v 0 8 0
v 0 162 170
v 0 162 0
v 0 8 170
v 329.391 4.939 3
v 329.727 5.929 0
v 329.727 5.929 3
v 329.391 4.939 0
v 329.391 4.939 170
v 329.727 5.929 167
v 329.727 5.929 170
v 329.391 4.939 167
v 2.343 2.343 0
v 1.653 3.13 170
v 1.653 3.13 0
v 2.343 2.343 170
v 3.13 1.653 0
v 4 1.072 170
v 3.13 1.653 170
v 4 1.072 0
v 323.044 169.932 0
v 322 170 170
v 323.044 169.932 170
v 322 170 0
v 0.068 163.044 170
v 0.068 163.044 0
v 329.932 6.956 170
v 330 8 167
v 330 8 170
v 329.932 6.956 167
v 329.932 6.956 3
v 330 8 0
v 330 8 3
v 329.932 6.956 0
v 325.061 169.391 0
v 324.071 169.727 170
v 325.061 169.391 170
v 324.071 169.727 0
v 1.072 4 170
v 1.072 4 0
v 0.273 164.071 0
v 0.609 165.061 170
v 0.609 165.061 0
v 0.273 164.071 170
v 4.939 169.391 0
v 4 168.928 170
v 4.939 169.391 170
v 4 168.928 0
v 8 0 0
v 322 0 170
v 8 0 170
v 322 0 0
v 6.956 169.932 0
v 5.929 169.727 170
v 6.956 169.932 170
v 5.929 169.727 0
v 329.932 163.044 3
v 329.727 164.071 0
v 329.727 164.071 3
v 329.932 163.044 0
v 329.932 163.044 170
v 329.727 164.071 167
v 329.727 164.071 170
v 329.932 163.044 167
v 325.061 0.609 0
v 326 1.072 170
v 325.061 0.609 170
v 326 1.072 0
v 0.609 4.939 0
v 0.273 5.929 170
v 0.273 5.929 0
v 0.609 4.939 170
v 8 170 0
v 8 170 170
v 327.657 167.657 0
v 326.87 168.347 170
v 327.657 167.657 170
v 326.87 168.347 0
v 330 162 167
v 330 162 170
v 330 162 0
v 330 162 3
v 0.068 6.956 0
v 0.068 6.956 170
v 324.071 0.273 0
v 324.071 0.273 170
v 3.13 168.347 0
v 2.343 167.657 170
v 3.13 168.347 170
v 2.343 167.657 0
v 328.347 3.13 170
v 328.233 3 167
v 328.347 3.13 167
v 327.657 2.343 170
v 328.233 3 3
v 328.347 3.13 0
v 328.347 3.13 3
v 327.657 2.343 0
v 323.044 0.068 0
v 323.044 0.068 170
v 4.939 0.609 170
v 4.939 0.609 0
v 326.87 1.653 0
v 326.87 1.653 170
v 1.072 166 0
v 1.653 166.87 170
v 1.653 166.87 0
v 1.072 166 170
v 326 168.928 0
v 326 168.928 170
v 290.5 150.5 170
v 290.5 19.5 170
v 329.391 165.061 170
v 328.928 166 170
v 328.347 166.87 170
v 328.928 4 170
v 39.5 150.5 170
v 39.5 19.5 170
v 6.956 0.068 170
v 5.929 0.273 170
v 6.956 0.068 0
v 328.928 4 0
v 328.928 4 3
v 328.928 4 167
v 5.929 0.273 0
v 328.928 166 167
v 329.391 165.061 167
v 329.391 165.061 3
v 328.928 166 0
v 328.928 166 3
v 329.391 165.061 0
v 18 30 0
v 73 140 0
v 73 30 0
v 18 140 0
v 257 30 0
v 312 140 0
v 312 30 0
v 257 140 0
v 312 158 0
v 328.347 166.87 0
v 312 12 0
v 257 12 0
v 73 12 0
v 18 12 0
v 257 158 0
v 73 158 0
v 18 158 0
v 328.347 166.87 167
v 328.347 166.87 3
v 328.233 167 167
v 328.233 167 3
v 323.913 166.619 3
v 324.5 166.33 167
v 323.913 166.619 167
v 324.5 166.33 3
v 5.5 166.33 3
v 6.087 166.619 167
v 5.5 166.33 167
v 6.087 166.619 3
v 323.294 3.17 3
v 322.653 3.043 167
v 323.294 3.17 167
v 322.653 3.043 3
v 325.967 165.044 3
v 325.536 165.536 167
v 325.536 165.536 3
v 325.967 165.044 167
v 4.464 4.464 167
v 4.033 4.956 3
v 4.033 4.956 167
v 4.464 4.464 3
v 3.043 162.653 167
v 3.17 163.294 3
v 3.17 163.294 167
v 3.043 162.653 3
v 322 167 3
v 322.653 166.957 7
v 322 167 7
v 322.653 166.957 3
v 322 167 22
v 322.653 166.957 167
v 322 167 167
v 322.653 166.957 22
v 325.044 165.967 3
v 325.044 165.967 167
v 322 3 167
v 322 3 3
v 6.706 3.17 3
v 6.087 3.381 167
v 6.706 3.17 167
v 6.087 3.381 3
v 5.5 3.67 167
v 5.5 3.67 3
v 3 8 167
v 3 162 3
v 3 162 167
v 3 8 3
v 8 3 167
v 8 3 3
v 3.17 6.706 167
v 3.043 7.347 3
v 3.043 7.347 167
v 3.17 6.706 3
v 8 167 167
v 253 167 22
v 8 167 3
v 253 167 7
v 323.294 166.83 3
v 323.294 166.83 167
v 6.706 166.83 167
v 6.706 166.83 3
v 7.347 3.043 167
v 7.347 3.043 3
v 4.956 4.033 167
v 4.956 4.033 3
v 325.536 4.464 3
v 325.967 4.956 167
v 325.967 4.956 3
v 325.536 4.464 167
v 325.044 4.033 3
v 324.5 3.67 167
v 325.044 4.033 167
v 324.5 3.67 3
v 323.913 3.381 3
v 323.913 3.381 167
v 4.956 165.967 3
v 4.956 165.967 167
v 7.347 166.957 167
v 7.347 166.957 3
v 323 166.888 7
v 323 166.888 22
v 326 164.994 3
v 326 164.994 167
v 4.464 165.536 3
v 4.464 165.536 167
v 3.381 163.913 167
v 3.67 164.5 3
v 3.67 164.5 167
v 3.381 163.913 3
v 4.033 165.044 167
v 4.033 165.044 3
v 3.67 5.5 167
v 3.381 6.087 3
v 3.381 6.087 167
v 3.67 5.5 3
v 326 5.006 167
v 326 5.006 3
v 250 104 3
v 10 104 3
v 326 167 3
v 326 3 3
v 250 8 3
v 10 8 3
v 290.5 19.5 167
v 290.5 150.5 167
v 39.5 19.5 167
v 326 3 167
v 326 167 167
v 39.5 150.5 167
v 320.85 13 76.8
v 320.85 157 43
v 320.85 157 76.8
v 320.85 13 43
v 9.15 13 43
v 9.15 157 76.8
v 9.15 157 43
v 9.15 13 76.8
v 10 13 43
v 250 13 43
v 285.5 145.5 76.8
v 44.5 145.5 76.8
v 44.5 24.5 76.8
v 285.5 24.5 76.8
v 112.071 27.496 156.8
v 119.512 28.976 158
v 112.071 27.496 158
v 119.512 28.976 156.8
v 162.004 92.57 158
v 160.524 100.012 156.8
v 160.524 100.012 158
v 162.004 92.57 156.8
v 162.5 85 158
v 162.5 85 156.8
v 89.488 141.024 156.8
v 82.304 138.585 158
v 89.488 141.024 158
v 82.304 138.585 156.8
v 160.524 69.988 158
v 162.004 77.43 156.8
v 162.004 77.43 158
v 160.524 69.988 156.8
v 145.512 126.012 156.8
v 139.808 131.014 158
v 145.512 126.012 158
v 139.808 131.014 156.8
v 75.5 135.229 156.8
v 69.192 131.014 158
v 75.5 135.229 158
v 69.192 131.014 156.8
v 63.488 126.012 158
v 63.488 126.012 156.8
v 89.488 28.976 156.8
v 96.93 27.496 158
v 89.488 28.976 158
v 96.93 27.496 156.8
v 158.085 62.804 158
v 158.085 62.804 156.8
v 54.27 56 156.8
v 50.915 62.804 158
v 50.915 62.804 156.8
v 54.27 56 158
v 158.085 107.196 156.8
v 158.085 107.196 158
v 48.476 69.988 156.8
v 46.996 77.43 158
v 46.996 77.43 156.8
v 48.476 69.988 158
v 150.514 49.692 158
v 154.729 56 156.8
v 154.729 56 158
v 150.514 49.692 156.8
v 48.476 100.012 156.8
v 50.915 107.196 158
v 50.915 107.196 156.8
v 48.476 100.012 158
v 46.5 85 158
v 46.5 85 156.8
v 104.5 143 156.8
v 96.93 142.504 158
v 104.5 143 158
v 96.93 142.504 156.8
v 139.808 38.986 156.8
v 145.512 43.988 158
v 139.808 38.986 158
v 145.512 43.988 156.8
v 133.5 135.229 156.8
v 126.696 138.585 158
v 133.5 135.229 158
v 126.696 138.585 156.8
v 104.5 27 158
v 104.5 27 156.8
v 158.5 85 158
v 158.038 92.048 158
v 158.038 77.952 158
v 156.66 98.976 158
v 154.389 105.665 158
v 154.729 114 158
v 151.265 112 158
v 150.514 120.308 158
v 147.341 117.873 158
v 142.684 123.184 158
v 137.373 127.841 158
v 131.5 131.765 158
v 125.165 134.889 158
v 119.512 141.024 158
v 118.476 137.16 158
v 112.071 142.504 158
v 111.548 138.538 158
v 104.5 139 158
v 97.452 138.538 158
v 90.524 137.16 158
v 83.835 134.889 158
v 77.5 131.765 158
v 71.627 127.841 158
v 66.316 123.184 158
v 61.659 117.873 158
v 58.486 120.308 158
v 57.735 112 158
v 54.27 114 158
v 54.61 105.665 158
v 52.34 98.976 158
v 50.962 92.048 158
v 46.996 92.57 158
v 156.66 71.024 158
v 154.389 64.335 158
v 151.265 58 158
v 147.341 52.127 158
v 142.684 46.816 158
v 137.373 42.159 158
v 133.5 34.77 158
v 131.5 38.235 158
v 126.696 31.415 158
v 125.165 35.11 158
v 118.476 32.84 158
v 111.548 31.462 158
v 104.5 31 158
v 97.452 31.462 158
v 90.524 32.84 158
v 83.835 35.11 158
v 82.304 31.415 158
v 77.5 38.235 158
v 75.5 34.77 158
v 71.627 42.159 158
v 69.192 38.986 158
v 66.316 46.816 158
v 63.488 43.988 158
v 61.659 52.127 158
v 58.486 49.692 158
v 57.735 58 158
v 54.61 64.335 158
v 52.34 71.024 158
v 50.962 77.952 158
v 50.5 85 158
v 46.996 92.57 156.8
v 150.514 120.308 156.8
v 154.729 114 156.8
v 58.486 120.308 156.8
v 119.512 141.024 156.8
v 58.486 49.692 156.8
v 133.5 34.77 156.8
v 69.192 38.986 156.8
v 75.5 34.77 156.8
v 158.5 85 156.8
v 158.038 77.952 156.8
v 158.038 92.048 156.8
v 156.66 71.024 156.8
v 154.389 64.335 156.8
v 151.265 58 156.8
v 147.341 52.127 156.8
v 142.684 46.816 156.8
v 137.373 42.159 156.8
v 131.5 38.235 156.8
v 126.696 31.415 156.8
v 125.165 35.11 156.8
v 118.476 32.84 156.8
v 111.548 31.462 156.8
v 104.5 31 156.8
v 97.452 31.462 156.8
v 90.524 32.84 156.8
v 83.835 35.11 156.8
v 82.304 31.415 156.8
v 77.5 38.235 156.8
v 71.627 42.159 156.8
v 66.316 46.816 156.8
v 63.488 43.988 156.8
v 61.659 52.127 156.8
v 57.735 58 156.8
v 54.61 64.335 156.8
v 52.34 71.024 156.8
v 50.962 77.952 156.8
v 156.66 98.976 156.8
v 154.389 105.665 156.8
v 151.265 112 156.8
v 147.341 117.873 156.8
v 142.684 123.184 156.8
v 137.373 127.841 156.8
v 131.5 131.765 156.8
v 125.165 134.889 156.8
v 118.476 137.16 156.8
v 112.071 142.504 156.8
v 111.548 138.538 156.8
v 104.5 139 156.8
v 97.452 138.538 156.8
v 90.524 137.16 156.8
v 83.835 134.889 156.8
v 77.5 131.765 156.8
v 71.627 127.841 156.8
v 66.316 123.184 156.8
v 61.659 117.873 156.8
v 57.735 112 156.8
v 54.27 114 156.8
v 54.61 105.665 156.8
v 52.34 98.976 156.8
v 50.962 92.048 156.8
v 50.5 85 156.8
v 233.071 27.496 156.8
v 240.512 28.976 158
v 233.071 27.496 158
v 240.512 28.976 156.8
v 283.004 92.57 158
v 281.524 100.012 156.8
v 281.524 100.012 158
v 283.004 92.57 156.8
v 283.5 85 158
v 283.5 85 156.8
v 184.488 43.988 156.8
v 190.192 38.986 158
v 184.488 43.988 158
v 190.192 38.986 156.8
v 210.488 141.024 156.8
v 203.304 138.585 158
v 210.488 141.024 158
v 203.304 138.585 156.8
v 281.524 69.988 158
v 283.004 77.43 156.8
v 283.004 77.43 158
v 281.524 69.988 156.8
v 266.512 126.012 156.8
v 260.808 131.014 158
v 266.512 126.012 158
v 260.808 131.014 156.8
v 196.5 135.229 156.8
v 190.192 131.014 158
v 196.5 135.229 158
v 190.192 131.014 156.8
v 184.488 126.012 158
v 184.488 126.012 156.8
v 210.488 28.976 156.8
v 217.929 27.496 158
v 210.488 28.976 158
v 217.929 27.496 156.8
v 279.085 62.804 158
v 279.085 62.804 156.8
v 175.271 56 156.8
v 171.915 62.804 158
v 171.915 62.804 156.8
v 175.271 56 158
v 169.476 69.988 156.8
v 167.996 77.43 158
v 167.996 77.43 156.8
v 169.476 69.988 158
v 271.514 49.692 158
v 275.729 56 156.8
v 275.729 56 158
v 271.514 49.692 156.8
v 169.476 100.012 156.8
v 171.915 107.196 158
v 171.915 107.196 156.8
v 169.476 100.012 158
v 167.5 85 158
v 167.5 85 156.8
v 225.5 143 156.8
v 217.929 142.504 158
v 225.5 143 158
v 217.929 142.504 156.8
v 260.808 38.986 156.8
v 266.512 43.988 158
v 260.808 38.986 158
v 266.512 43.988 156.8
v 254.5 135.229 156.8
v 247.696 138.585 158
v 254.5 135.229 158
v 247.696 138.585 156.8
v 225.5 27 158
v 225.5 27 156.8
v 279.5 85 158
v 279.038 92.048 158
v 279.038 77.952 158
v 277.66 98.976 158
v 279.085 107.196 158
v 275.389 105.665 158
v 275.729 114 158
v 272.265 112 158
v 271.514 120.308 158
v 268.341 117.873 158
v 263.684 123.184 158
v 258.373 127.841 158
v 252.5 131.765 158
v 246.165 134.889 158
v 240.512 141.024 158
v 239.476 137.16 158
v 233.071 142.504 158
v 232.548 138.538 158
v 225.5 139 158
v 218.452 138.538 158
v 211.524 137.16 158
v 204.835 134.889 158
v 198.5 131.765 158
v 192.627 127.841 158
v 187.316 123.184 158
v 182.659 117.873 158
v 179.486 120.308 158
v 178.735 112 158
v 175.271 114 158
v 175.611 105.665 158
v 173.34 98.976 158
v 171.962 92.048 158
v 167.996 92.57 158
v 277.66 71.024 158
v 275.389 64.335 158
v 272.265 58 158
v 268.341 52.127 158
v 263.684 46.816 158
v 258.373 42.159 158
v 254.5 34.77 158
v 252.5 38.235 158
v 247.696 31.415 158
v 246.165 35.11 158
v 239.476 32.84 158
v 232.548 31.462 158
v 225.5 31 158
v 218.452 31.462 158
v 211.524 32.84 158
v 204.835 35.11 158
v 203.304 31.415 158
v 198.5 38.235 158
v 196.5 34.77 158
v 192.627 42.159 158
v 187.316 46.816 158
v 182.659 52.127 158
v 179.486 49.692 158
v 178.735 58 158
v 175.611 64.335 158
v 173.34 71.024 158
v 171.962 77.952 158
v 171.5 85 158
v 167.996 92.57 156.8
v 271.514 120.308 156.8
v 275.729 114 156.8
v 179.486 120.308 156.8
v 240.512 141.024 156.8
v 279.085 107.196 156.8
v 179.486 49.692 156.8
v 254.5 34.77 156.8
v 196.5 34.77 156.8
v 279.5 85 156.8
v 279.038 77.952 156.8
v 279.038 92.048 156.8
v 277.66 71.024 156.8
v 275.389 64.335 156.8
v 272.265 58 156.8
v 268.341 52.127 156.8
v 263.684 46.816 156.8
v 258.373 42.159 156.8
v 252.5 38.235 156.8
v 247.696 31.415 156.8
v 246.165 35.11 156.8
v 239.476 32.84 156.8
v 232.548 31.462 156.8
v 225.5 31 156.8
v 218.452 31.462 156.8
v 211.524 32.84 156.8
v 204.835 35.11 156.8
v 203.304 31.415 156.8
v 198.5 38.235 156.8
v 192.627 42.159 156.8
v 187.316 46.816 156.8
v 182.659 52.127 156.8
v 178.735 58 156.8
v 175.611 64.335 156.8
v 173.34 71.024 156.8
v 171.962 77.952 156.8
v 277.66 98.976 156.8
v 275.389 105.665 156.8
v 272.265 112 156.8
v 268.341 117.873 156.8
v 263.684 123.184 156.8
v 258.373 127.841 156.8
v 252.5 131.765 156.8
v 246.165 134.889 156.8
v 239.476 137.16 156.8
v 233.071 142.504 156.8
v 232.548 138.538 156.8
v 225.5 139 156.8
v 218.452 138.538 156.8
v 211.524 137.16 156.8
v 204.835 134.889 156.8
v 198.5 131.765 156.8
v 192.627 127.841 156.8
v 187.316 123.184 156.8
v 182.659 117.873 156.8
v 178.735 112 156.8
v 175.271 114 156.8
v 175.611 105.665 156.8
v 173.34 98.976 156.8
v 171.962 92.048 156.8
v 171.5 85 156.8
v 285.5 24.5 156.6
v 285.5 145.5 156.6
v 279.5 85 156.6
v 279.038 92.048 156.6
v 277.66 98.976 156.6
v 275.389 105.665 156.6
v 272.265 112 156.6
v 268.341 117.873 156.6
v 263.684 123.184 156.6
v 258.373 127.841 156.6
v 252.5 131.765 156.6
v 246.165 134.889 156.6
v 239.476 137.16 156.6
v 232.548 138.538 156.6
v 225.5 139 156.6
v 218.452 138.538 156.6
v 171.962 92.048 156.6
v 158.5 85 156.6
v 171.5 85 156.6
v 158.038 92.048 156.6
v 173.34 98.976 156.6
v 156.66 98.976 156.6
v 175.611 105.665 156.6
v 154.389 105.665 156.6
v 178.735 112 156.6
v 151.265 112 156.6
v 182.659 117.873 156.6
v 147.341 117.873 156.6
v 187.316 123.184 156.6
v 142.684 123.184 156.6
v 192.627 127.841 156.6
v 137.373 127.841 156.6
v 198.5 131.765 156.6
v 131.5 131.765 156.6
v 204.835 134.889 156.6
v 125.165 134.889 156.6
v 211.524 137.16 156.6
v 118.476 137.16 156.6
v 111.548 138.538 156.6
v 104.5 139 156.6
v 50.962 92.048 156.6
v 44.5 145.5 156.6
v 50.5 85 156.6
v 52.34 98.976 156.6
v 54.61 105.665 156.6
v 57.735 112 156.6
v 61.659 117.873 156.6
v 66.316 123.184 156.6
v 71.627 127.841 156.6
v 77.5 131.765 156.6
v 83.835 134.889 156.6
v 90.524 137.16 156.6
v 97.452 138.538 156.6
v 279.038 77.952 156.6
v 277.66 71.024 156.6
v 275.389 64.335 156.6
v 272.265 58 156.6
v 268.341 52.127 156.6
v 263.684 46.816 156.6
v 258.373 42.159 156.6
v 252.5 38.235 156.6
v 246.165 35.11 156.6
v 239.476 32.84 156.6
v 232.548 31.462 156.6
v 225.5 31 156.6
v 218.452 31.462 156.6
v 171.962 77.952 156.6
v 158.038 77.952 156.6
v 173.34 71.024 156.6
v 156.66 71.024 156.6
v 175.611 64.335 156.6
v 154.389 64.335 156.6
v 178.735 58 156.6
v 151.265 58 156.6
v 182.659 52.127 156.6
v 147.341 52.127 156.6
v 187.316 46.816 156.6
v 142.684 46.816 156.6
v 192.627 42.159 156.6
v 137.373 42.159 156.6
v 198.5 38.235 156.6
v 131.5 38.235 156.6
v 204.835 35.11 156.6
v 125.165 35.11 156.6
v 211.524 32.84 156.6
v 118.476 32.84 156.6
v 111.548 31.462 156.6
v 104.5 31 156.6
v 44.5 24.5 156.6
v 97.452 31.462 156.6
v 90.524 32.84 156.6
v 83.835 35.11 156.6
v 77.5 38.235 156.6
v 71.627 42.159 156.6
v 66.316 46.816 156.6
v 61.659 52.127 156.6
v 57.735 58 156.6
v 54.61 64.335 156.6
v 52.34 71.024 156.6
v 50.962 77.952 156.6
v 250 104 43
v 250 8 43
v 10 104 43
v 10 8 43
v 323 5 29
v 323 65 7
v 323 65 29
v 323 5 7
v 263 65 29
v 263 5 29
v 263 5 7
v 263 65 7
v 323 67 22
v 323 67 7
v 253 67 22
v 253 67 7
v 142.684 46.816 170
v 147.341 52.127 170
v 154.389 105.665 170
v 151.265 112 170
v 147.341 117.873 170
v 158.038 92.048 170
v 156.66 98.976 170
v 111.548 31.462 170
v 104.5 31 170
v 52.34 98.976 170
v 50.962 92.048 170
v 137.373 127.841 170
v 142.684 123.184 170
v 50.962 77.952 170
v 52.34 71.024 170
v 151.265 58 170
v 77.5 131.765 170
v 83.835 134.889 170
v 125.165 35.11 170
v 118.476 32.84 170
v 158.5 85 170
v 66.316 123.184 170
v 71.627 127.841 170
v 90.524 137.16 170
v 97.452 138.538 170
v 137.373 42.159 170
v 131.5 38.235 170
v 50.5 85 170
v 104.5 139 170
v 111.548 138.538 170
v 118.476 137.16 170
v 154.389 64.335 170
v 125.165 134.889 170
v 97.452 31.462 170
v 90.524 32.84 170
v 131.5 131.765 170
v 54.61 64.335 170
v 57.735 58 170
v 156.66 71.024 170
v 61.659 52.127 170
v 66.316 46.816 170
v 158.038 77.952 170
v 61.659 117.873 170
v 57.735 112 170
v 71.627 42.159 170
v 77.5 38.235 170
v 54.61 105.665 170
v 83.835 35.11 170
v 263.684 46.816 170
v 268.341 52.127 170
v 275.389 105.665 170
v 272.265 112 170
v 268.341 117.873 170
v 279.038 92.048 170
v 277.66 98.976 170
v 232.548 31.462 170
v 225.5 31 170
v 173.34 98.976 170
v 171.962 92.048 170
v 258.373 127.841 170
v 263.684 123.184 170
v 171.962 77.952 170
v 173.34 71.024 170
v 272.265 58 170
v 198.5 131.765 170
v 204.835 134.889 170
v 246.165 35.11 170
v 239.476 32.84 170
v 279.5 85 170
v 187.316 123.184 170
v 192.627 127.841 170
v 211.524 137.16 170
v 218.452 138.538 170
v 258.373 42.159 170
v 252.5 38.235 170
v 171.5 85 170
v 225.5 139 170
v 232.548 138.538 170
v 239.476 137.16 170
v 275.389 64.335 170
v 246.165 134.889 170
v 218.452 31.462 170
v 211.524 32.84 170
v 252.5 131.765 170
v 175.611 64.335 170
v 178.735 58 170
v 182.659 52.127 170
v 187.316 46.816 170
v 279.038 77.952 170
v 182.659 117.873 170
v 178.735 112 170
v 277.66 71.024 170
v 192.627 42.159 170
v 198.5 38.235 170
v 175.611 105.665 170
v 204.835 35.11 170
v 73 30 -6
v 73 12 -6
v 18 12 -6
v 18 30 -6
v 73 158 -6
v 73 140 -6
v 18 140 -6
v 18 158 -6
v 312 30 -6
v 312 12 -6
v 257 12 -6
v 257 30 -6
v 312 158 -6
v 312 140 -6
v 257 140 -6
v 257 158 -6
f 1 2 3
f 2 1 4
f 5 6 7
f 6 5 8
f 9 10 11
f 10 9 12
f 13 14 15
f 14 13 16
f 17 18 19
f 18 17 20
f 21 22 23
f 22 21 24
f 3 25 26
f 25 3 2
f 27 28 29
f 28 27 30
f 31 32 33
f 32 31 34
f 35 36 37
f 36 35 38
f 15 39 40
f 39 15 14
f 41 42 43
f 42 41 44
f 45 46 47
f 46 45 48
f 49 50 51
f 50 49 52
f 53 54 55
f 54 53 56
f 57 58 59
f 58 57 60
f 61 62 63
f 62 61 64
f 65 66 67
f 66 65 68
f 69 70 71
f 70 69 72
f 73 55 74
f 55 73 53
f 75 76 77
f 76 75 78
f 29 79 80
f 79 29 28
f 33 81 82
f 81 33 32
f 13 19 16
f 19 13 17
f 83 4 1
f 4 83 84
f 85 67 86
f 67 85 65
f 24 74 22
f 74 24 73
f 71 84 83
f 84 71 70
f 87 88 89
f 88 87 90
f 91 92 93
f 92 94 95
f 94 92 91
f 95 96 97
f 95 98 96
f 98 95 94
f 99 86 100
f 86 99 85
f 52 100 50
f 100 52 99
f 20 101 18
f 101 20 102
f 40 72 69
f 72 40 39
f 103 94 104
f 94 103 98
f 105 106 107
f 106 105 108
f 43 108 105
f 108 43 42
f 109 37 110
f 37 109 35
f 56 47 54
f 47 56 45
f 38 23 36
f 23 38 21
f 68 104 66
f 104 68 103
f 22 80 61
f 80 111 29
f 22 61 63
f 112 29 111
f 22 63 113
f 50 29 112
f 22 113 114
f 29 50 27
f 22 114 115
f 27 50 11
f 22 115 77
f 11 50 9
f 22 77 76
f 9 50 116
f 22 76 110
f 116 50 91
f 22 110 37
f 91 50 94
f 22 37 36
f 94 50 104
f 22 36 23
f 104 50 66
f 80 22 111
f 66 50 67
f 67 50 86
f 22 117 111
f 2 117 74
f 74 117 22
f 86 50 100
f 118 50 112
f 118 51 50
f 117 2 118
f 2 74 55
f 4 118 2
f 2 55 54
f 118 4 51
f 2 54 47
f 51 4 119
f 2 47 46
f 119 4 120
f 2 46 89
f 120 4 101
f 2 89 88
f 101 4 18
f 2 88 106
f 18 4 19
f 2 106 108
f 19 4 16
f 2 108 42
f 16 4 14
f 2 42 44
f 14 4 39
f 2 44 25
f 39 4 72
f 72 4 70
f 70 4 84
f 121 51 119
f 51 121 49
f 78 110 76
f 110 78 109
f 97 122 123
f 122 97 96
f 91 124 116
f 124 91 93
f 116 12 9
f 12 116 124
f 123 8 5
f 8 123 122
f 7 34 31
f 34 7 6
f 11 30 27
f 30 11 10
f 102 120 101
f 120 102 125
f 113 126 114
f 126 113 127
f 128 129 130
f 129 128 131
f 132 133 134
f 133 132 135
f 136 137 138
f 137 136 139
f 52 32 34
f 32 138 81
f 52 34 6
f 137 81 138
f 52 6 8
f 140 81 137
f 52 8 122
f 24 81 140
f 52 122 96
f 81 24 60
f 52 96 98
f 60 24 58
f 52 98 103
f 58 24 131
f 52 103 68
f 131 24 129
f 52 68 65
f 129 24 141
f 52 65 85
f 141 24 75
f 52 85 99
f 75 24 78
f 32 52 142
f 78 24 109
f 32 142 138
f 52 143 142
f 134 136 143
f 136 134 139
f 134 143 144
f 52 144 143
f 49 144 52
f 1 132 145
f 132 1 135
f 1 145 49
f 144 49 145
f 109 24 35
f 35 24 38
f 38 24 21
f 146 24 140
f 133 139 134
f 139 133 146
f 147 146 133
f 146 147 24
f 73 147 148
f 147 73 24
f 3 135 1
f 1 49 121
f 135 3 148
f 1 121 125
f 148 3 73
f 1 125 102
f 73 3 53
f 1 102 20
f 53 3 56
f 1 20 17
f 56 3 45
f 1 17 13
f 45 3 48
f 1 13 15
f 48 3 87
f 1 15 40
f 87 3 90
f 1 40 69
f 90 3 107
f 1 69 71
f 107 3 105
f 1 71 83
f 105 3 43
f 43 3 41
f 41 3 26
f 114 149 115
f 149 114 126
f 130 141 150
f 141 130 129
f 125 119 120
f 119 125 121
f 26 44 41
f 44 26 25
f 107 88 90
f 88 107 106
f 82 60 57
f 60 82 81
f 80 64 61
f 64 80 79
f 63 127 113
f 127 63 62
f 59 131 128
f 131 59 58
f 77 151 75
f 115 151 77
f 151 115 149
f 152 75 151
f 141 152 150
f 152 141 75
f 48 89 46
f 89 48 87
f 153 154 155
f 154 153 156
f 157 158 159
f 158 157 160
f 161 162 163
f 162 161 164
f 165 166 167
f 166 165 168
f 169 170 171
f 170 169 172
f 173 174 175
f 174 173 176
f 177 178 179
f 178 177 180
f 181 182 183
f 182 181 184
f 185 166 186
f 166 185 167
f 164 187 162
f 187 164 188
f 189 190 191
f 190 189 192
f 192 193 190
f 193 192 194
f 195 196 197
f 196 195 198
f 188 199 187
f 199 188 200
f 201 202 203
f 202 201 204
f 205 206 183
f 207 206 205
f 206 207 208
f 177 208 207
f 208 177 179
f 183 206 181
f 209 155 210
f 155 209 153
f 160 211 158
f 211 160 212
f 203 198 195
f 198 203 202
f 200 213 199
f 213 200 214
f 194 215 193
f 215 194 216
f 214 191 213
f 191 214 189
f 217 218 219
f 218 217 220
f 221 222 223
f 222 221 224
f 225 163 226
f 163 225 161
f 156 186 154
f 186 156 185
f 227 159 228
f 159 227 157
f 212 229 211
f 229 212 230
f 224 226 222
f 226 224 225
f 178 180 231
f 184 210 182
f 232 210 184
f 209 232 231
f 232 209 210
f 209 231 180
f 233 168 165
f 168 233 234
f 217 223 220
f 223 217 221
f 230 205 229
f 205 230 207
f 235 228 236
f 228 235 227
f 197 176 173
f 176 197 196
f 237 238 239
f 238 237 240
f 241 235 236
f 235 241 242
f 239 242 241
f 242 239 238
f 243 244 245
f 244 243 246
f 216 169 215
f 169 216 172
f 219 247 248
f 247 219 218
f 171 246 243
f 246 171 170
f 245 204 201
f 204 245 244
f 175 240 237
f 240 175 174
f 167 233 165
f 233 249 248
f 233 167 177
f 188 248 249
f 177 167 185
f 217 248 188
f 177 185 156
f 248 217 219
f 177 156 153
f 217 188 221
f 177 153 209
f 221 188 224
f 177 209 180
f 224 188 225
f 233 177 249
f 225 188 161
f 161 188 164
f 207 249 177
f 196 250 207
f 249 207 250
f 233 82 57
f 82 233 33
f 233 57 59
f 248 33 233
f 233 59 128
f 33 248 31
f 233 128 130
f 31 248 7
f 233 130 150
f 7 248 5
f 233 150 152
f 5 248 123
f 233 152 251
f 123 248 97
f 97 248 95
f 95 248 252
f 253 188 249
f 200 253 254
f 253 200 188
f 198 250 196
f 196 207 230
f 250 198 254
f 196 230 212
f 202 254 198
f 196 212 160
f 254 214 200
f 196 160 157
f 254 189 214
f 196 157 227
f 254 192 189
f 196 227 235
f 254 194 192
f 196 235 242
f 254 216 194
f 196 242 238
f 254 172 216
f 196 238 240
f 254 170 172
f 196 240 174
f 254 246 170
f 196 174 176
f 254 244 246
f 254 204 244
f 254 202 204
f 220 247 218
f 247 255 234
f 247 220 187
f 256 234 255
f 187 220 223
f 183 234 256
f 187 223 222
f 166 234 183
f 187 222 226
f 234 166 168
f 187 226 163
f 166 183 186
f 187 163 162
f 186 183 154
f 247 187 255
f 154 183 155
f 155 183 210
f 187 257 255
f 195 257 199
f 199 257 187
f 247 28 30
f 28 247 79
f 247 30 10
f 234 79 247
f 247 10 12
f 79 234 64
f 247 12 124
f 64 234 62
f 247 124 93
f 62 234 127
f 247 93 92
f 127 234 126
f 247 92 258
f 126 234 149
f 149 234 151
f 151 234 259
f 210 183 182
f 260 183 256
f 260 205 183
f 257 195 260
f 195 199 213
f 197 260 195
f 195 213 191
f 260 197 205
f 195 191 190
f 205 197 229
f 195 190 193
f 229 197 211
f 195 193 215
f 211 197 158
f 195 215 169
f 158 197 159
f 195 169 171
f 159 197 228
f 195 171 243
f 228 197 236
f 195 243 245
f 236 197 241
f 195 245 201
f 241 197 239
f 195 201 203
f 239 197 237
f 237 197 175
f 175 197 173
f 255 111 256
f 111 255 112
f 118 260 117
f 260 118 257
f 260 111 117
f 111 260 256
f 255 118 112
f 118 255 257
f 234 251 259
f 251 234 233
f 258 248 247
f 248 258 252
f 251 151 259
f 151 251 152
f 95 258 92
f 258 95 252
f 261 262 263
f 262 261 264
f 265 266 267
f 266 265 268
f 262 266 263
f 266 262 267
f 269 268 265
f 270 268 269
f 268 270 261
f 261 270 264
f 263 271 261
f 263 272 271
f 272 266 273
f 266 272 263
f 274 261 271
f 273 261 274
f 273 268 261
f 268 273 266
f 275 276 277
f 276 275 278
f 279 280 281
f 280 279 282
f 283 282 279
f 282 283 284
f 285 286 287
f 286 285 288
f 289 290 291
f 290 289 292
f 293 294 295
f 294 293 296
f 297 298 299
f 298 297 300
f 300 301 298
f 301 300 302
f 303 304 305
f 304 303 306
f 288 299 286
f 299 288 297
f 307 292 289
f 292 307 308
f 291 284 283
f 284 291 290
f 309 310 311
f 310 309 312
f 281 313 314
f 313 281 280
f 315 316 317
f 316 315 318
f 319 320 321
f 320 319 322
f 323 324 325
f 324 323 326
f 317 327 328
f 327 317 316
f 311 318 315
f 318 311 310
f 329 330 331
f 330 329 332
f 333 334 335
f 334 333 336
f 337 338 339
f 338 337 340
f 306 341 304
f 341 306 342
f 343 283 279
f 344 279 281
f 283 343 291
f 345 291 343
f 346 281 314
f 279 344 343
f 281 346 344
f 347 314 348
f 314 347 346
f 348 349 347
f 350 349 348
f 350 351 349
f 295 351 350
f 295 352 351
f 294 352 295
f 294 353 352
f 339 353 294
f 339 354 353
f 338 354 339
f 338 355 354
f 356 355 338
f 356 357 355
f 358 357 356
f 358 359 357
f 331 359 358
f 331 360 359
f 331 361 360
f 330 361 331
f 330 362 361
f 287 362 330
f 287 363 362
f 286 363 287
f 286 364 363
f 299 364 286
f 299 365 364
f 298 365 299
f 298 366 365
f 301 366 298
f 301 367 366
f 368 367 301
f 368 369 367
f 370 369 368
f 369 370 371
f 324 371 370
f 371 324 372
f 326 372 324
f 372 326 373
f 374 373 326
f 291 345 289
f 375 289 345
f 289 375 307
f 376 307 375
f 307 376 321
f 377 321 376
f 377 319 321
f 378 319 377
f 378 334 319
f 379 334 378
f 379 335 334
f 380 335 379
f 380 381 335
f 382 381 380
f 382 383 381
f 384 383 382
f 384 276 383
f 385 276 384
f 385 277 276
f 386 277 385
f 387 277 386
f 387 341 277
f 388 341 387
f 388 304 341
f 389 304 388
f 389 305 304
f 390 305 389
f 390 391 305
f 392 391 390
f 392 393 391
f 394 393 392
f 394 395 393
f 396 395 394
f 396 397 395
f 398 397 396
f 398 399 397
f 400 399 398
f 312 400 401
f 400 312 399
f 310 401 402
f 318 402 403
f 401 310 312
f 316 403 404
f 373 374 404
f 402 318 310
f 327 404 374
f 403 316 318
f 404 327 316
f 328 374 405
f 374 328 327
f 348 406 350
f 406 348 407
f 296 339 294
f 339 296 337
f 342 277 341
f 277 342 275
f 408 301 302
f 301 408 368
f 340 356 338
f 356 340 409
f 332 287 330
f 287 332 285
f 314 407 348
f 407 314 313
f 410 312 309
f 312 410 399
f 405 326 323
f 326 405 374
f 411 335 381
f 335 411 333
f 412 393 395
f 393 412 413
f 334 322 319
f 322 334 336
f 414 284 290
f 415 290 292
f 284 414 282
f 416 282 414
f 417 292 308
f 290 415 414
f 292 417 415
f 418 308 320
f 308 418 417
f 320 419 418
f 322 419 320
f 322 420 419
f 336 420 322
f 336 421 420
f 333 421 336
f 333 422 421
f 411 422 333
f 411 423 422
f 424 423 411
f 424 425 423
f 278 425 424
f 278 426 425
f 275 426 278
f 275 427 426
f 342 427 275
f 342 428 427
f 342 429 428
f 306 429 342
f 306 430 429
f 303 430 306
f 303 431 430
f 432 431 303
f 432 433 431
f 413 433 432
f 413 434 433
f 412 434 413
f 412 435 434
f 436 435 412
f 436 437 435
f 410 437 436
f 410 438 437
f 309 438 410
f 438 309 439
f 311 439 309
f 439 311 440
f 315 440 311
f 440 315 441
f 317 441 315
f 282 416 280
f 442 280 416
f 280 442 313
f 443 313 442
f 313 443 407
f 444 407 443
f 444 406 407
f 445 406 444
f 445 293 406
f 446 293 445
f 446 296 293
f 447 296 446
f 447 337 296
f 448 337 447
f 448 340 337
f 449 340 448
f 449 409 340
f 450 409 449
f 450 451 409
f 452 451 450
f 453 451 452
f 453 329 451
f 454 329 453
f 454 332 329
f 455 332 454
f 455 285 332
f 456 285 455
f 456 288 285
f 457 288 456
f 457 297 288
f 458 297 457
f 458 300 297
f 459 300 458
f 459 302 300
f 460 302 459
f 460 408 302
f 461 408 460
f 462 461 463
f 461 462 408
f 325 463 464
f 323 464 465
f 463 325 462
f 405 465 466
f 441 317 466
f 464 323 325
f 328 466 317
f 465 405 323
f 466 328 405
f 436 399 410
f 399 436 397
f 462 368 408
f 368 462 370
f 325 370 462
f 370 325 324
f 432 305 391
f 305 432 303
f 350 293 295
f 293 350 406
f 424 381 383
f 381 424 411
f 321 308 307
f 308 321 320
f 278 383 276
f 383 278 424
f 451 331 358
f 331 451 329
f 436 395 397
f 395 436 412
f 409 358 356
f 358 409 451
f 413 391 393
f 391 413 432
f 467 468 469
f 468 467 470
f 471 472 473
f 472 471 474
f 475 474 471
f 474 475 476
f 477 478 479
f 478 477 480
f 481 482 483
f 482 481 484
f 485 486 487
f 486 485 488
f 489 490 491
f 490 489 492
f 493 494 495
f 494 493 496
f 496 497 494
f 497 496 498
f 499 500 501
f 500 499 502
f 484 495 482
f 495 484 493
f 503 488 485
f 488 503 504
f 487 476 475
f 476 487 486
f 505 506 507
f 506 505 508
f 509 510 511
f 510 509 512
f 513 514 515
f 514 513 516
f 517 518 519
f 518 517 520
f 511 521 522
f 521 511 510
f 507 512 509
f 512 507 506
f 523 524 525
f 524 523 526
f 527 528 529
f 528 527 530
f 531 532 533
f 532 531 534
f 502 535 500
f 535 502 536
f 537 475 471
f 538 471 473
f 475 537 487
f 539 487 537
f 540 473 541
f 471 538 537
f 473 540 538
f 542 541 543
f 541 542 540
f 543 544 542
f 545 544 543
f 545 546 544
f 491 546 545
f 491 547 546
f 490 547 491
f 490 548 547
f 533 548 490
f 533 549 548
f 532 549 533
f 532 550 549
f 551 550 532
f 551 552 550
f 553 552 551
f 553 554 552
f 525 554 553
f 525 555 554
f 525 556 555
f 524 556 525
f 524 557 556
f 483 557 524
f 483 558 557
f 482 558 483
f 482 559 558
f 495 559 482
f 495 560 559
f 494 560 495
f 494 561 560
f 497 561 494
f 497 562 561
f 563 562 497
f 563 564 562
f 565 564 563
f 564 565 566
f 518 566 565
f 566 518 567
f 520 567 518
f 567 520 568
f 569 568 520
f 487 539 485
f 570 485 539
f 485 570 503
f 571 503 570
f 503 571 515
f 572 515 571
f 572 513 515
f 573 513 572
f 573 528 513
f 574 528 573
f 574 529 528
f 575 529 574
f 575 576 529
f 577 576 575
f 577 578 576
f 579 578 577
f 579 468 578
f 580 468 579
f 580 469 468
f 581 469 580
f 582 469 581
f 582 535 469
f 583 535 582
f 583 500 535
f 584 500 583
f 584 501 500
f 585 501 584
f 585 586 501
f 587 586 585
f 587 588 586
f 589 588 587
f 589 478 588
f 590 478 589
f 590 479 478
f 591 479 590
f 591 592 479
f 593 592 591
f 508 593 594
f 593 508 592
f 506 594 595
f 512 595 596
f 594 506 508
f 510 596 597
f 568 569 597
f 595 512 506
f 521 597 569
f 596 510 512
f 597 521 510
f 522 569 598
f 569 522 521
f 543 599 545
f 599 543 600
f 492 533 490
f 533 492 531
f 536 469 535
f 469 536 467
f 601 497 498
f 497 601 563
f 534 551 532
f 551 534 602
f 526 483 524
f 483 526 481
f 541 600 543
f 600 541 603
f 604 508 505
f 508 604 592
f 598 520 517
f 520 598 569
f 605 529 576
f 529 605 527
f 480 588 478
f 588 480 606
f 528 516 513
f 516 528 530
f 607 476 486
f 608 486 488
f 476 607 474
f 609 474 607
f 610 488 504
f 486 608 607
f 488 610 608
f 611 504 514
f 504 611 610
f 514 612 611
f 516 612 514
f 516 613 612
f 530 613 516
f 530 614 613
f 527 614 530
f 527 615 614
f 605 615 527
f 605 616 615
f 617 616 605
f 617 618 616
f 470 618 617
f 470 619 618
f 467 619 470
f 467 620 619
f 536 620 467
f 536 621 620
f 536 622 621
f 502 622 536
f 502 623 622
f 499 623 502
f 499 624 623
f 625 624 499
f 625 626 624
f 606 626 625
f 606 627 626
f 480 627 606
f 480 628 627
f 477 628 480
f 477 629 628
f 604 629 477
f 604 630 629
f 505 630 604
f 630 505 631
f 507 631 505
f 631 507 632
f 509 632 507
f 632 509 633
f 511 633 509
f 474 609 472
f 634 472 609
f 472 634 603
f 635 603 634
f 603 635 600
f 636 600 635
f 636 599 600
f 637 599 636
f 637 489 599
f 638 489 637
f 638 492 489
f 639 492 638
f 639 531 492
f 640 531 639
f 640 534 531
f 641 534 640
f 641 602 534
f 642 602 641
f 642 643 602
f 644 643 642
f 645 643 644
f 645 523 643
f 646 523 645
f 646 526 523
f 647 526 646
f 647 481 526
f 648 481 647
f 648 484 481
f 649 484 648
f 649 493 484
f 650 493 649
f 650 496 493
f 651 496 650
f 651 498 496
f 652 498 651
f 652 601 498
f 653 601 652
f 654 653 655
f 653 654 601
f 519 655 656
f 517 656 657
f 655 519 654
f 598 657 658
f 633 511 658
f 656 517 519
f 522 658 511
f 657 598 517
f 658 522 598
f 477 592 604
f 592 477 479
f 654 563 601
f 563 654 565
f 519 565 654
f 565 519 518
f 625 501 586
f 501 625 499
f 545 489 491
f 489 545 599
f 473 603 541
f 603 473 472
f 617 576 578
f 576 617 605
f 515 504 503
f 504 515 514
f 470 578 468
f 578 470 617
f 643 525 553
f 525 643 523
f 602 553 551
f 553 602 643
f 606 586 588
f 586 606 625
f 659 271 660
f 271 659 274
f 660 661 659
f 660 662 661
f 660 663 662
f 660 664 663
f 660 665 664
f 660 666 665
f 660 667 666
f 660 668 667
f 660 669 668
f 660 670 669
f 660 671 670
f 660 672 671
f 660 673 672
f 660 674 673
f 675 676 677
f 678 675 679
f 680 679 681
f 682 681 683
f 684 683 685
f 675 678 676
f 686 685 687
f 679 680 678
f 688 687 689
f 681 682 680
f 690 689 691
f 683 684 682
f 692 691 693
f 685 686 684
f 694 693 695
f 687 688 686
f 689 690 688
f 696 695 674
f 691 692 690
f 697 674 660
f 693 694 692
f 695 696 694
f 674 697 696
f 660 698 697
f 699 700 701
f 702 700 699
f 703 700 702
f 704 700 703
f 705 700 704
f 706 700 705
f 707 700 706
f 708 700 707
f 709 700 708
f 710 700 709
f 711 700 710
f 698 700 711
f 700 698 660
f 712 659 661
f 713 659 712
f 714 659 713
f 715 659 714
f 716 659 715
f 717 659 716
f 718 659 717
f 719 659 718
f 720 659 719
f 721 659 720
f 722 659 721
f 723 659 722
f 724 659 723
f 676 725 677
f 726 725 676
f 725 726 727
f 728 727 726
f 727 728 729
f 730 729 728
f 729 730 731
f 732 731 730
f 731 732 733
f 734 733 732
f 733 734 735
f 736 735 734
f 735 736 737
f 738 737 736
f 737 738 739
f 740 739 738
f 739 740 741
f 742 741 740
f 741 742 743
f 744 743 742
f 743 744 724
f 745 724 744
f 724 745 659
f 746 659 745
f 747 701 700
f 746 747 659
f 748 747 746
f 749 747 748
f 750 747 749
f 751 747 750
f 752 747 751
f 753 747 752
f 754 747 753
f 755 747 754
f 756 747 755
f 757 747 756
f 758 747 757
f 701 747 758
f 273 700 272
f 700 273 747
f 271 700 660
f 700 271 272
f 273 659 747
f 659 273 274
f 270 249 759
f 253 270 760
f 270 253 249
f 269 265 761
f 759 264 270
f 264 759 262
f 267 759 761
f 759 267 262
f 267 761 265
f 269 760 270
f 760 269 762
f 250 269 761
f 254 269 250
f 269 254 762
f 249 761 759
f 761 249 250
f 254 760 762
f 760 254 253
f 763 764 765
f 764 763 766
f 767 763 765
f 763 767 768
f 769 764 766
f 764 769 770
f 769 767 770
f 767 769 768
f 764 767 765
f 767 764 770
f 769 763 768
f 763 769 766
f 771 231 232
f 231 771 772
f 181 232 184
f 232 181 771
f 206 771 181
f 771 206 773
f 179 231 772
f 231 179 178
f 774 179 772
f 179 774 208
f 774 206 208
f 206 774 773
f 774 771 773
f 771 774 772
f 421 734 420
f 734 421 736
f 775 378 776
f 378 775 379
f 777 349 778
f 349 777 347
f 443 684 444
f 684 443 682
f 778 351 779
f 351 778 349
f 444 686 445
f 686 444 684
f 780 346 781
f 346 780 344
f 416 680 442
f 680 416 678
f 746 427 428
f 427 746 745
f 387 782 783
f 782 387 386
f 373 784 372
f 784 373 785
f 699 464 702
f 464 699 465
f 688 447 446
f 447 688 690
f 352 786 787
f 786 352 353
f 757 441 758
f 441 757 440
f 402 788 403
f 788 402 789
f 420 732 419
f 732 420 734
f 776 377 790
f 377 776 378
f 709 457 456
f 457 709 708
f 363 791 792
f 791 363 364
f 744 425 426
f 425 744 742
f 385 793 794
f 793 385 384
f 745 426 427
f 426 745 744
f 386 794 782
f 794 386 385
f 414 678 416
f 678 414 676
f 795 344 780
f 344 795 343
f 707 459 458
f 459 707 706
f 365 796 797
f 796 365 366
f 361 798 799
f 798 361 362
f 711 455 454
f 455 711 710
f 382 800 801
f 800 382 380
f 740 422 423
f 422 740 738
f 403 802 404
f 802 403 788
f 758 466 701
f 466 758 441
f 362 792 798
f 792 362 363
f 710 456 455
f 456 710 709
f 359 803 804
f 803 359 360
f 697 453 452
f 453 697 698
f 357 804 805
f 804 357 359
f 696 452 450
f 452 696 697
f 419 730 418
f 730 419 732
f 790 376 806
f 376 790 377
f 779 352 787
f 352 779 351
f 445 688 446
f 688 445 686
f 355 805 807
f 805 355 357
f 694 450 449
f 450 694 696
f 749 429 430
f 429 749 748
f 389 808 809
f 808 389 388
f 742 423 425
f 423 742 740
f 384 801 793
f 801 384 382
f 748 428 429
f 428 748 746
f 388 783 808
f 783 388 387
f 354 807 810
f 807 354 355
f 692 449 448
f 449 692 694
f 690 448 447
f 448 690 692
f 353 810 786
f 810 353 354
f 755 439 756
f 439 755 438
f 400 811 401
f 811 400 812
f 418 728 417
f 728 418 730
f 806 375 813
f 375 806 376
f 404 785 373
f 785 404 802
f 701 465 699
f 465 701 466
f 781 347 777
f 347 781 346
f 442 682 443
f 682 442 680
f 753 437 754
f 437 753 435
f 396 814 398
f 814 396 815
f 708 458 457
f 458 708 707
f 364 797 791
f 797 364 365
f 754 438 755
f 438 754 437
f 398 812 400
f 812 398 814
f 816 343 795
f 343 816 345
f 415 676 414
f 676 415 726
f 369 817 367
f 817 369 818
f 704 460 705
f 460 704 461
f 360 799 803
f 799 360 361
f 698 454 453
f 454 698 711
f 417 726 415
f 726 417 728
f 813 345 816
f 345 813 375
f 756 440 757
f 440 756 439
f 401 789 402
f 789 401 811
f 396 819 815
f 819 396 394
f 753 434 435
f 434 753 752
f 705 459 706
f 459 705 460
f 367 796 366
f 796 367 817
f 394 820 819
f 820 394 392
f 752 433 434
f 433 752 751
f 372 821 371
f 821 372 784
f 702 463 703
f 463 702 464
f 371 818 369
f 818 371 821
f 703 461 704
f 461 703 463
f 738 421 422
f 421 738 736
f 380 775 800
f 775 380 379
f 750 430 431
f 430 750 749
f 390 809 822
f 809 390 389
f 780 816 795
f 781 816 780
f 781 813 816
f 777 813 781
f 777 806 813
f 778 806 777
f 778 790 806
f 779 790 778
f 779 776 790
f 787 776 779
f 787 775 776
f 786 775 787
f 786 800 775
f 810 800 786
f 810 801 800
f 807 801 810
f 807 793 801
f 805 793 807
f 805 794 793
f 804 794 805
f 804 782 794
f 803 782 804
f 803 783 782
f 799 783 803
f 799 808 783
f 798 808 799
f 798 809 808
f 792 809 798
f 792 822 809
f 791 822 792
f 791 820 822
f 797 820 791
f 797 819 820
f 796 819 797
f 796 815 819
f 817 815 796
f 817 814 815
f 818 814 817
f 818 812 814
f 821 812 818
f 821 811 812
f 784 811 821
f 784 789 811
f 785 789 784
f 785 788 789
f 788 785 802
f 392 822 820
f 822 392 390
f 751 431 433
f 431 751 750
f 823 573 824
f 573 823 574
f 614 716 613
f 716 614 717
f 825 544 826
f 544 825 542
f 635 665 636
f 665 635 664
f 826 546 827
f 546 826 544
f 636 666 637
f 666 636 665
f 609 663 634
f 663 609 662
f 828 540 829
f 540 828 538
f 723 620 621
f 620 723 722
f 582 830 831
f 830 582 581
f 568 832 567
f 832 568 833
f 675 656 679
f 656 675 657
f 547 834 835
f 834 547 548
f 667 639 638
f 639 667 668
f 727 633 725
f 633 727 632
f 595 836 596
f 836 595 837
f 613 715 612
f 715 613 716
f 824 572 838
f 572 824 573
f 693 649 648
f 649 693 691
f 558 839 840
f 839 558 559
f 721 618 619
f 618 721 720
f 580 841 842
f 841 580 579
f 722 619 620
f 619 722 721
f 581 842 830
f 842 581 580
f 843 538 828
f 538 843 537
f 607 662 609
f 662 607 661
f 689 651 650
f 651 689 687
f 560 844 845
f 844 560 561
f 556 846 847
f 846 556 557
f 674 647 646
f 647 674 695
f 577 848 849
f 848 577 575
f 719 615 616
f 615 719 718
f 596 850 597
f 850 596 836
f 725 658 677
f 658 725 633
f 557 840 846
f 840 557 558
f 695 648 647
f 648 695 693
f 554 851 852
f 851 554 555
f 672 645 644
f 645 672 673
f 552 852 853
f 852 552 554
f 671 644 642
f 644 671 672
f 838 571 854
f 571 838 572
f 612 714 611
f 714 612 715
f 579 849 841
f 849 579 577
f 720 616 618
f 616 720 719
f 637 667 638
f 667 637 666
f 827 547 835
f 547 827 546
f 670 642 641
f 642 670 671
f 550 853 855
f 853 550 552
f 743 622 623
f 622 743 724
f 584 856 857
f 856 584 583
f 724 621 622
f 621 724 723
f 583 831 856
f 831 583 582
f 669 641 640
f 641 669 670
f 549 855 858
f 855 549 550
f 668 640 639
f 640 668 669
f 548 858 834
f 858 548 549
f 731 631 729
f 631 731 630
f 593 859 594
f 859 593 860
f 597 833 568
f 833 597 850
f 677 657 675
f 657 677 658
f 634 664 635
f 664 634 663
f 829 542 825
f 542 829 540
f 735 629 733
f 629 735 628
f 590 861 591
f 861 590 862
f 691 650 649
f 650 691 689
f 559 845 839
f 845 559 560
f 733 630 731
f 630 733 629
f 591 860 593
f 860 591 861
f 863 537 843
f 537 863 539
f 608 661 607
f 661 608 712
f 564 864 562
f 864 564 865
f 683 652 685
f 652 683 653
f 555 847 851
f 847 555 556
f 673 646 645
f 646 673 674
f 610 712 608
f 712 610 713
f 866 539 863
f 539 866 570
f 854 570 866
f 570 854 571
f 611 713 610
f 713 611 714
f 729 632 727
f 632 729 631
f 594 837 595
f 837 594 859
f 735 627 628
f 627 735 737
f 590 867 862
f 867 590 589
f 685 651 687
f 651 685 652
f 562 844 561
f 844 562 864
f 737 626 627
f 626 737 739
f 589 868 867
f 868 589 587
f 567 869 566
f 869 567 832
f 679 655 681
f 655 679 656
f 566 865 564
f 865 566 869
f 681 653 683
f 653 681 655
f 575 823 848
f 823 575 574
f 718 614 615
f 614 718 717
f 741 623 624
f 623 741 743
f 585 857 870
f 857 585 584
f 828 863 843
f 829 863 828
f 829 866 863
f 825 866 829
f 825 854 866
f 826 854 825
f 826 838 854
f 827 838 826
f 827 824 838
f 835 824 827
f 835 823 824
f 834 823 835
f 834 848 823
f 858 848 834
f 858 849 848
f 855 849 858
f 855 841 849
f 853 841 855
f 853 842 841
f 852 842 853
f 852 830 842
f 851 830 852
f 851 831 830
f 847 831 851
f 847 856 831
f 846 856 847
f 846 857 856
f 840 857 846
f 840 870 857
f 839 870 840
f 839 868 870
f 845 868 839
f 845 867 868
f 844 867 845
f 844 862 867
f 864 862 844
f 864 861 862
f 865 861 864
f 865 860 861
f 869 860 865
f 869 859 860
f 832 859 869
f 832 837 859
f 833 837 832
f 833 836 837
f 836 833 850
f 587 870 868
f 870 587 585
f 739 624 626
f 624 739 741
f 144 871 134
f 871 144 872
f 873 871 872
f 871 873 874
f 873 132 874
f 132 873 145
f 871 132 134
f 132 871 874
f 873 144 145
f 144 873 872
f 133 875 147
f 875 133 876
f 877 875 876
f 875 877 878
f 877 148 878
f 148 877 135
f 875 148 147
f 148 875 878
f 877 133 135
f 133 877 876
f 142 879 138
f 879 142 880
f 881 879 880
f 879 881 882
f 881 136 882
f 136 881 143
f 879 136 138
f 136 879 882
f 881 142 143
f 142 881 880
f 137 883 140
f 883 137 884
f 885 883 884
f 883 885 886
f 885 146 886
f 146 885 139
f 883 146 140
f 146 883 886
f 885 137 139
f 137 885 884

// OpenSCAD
// BC-250 + JF13K — Layout A envelope study
// Units: millimetres. This is a collision/architecture model, not a printable case.

$fn = 48;

// ---- Display ---------------------------------------------------------------
show_chassis = true;
show_components = true;
show_horizontal_support = true;
show_vertical_support = false;
show_airflow_guides = true;
section_view = true;
export_projection = false;

// ---- Confidence ------------------------------------------------------------
// confirmed: measured from local mesh or manufacturer data
// provisional: replace after physical measurement

// Common chassis, provisional target envelope.
chassis = [330, 170, 170];
wall = 3;
corner_radius = 8;

// BC-250 proxy envelope: confirmed from bc250_alt.stl.
bc250 = [311.7, 144, 31.8];
pcb_thickness = 1.6;
pcb_origin = [9.15, 13, 55];

// JF13K manufacturer envelope. Installed Z origin is provisional.
jf13k = [241, 121, 92];
jf13k_origin = [44.5, 24.5, pcb_origin[2] + pcb_thickness];
jf13k_install_extra = 8; // conservative adapter/mount allowance; not additive fact

// Cisco UCSC-PSU-650W V02: provisional external envelope.
cisco_psu = [240, 96, 40];
cisco_psu_origin = [10, 8, 3];

// Standard peripheral envelopes.
ssd25 = [70, 100, 15];
ssd25_origin = [253, 67, 7];
esp_relay = [60, 60, 22];
esp_relay_origin = [263, 5, 7];

// Required functional gaps.
mesh_gap = 10;
backplate_channel = pcb_origin[2] - (cisco_psu_origin[2] + cisco_psu[2]);

// ---- Helpers ---------------------------------------------------------------
module rounded_box(size, radius) {
    hull() {
        for (x = [radius, size[0] - radius], y = [radius, size[1] - radius])
            translate([x, y, 0]) cylinder(h = size[2], r = radius);
    }
}

module shell() {
    color([0.75, 0.77, 0.80, 0.22])
    difference() {
        rounded_box(chassis, corner_radius);
        translate([wall, wall, wall])
            rounded_box(chassis - [2 * wall, 2 * wall, 2 * wall], corner_radius - wall);

        // Main JF13K intake opening.
        translate([jf13k_origin[0] - 5, jf13k_origin[1] - 5, chassis[2] - wall - 1])
            cube([jf13k[0] + 10, jf13k[1] + 10, wall + 2]);

        // I/O and service end left open in section view.
        if (section_view)
            translate([chassis[0] - wall - 1, wall, wall])
                cube([wall + 2, chassis[1] - 2 * wall, chassis[2] - 2 * wall]);
    }
}

module bc250_envelope() {
    // PCB plane.
    color([0.12, 0.55, 0.28, 0.85])
        translate(pcb_origin) cube([bc250[0], bc250[1], pcb_thickness]);

    // Component/backplate keepout around the PCB plane.
    color([0.12, 0.55, 0.28, 0.18])
        translate([pcb_origin[0], pcb_origin[1], pcb_origin[2] - 10])
            cube([bc250[0], bc250[1], bc250[2]]);
}

module jf13k_envelope() {
    color([0.12, 0.42, 0.85, 0.45])
        translate(jf13k_origin)
            cube([jf13k[0], jf13k[1], jf13k[2] + jf13k_install_extra]);

    // Two fan discs indicate intake positions.
    for (x = [jf13k_origin[0] + 60, jf13k_origin[0] + 181])
        color([0.15, 0.55, 0.95, 0.65])
            translate([x, jf13k_origin[1] + 60.5, jf13k_origin[2] + jf13k[2] + jf13k_install_extra + 0.2])
                cylinder(h = 1.2, d = 116);
}

module lower_modules() {
    color([0.95, 0.48, 0.12, 0.65])
        translate(cisco_psu_origin) cube(cisco_psu);
    color([0.55, 0.30, 0.82, 0.70])
        translate(esp_relay_origin) cube(esp_relay);
    color([0.70, 0.33, 0.72, 0.55])
        translate(ssd25_origin) cube(ssd25);
}

module airflow_guides() {
    // JF13K intake guide cylinders; visual only.
    for (x = [jf13k_origin[0] + 60, jf13k_origin[0] + 181])
        color([0.15, 0.65, 1.0, 0.24])
            translate([x, jf13k_origin[1] + 60.5, jf13k_origin[2] + jf13k[2] + jf13k_install_extra])
                cylinder(h = chassis[2] - (jf13k_origin[2] + jf13k[2] + jf13k_install_extra), d = 108);

    // Backplate channel indicator.
    color([0.18, 0.75, 0.95, 0.20])
        translate([pcb_origin[0], pcb_origin[1], cisco_psu_origin[2] + cisco_psu[2]])
            cube([bc250[0], bc250[1], max(backplate_channel, 0.1)]);
}

module horizontal_support() {
    foot = [55, 18, 6];
    color([0.20, 0.20, 0.22, 0.85]) {
        for (x = [18, chassis[0] - foot[0] - 18], y = [12, chassis[1] - foot[1] - 12])
            translate([x, y, -foot[2]]) cube(foot);
    }
}

module vertical_support() {
    // Fits the short end; actual anti-tip width remains a design variable.
    base = [28, chassis[1] + 80, 8];
    color([0.20, 0.20, 0.22, 0.85])
        translate([-base[2], -40, -40]) cube(base);
}

module layout_a() {
    if (show_chassis) shell();
    if (show_components) {
        bc250_envelope();
        jf13k_envelope();
        lower_modules();
    }
    if (show_airflow_guides) airflow_guides();
    if (show_horizontal_support) horizontal_support();
    if (show_vertical_support) vertical_support();
}

if (export_projection)
    projection(cut = false) layout_a();
else
    layout_a();

echo("chassis_mm", chassis);
echo("chassis_litres", chassis[0] * chassis[1] * chassis[2] / 1000000);
echo("backplate_channel_mm", backplate_channel);
echo("jf13k_top_z_mm", jf13k_origin[2] + jf13k[2] + jf13k_install_extra);
